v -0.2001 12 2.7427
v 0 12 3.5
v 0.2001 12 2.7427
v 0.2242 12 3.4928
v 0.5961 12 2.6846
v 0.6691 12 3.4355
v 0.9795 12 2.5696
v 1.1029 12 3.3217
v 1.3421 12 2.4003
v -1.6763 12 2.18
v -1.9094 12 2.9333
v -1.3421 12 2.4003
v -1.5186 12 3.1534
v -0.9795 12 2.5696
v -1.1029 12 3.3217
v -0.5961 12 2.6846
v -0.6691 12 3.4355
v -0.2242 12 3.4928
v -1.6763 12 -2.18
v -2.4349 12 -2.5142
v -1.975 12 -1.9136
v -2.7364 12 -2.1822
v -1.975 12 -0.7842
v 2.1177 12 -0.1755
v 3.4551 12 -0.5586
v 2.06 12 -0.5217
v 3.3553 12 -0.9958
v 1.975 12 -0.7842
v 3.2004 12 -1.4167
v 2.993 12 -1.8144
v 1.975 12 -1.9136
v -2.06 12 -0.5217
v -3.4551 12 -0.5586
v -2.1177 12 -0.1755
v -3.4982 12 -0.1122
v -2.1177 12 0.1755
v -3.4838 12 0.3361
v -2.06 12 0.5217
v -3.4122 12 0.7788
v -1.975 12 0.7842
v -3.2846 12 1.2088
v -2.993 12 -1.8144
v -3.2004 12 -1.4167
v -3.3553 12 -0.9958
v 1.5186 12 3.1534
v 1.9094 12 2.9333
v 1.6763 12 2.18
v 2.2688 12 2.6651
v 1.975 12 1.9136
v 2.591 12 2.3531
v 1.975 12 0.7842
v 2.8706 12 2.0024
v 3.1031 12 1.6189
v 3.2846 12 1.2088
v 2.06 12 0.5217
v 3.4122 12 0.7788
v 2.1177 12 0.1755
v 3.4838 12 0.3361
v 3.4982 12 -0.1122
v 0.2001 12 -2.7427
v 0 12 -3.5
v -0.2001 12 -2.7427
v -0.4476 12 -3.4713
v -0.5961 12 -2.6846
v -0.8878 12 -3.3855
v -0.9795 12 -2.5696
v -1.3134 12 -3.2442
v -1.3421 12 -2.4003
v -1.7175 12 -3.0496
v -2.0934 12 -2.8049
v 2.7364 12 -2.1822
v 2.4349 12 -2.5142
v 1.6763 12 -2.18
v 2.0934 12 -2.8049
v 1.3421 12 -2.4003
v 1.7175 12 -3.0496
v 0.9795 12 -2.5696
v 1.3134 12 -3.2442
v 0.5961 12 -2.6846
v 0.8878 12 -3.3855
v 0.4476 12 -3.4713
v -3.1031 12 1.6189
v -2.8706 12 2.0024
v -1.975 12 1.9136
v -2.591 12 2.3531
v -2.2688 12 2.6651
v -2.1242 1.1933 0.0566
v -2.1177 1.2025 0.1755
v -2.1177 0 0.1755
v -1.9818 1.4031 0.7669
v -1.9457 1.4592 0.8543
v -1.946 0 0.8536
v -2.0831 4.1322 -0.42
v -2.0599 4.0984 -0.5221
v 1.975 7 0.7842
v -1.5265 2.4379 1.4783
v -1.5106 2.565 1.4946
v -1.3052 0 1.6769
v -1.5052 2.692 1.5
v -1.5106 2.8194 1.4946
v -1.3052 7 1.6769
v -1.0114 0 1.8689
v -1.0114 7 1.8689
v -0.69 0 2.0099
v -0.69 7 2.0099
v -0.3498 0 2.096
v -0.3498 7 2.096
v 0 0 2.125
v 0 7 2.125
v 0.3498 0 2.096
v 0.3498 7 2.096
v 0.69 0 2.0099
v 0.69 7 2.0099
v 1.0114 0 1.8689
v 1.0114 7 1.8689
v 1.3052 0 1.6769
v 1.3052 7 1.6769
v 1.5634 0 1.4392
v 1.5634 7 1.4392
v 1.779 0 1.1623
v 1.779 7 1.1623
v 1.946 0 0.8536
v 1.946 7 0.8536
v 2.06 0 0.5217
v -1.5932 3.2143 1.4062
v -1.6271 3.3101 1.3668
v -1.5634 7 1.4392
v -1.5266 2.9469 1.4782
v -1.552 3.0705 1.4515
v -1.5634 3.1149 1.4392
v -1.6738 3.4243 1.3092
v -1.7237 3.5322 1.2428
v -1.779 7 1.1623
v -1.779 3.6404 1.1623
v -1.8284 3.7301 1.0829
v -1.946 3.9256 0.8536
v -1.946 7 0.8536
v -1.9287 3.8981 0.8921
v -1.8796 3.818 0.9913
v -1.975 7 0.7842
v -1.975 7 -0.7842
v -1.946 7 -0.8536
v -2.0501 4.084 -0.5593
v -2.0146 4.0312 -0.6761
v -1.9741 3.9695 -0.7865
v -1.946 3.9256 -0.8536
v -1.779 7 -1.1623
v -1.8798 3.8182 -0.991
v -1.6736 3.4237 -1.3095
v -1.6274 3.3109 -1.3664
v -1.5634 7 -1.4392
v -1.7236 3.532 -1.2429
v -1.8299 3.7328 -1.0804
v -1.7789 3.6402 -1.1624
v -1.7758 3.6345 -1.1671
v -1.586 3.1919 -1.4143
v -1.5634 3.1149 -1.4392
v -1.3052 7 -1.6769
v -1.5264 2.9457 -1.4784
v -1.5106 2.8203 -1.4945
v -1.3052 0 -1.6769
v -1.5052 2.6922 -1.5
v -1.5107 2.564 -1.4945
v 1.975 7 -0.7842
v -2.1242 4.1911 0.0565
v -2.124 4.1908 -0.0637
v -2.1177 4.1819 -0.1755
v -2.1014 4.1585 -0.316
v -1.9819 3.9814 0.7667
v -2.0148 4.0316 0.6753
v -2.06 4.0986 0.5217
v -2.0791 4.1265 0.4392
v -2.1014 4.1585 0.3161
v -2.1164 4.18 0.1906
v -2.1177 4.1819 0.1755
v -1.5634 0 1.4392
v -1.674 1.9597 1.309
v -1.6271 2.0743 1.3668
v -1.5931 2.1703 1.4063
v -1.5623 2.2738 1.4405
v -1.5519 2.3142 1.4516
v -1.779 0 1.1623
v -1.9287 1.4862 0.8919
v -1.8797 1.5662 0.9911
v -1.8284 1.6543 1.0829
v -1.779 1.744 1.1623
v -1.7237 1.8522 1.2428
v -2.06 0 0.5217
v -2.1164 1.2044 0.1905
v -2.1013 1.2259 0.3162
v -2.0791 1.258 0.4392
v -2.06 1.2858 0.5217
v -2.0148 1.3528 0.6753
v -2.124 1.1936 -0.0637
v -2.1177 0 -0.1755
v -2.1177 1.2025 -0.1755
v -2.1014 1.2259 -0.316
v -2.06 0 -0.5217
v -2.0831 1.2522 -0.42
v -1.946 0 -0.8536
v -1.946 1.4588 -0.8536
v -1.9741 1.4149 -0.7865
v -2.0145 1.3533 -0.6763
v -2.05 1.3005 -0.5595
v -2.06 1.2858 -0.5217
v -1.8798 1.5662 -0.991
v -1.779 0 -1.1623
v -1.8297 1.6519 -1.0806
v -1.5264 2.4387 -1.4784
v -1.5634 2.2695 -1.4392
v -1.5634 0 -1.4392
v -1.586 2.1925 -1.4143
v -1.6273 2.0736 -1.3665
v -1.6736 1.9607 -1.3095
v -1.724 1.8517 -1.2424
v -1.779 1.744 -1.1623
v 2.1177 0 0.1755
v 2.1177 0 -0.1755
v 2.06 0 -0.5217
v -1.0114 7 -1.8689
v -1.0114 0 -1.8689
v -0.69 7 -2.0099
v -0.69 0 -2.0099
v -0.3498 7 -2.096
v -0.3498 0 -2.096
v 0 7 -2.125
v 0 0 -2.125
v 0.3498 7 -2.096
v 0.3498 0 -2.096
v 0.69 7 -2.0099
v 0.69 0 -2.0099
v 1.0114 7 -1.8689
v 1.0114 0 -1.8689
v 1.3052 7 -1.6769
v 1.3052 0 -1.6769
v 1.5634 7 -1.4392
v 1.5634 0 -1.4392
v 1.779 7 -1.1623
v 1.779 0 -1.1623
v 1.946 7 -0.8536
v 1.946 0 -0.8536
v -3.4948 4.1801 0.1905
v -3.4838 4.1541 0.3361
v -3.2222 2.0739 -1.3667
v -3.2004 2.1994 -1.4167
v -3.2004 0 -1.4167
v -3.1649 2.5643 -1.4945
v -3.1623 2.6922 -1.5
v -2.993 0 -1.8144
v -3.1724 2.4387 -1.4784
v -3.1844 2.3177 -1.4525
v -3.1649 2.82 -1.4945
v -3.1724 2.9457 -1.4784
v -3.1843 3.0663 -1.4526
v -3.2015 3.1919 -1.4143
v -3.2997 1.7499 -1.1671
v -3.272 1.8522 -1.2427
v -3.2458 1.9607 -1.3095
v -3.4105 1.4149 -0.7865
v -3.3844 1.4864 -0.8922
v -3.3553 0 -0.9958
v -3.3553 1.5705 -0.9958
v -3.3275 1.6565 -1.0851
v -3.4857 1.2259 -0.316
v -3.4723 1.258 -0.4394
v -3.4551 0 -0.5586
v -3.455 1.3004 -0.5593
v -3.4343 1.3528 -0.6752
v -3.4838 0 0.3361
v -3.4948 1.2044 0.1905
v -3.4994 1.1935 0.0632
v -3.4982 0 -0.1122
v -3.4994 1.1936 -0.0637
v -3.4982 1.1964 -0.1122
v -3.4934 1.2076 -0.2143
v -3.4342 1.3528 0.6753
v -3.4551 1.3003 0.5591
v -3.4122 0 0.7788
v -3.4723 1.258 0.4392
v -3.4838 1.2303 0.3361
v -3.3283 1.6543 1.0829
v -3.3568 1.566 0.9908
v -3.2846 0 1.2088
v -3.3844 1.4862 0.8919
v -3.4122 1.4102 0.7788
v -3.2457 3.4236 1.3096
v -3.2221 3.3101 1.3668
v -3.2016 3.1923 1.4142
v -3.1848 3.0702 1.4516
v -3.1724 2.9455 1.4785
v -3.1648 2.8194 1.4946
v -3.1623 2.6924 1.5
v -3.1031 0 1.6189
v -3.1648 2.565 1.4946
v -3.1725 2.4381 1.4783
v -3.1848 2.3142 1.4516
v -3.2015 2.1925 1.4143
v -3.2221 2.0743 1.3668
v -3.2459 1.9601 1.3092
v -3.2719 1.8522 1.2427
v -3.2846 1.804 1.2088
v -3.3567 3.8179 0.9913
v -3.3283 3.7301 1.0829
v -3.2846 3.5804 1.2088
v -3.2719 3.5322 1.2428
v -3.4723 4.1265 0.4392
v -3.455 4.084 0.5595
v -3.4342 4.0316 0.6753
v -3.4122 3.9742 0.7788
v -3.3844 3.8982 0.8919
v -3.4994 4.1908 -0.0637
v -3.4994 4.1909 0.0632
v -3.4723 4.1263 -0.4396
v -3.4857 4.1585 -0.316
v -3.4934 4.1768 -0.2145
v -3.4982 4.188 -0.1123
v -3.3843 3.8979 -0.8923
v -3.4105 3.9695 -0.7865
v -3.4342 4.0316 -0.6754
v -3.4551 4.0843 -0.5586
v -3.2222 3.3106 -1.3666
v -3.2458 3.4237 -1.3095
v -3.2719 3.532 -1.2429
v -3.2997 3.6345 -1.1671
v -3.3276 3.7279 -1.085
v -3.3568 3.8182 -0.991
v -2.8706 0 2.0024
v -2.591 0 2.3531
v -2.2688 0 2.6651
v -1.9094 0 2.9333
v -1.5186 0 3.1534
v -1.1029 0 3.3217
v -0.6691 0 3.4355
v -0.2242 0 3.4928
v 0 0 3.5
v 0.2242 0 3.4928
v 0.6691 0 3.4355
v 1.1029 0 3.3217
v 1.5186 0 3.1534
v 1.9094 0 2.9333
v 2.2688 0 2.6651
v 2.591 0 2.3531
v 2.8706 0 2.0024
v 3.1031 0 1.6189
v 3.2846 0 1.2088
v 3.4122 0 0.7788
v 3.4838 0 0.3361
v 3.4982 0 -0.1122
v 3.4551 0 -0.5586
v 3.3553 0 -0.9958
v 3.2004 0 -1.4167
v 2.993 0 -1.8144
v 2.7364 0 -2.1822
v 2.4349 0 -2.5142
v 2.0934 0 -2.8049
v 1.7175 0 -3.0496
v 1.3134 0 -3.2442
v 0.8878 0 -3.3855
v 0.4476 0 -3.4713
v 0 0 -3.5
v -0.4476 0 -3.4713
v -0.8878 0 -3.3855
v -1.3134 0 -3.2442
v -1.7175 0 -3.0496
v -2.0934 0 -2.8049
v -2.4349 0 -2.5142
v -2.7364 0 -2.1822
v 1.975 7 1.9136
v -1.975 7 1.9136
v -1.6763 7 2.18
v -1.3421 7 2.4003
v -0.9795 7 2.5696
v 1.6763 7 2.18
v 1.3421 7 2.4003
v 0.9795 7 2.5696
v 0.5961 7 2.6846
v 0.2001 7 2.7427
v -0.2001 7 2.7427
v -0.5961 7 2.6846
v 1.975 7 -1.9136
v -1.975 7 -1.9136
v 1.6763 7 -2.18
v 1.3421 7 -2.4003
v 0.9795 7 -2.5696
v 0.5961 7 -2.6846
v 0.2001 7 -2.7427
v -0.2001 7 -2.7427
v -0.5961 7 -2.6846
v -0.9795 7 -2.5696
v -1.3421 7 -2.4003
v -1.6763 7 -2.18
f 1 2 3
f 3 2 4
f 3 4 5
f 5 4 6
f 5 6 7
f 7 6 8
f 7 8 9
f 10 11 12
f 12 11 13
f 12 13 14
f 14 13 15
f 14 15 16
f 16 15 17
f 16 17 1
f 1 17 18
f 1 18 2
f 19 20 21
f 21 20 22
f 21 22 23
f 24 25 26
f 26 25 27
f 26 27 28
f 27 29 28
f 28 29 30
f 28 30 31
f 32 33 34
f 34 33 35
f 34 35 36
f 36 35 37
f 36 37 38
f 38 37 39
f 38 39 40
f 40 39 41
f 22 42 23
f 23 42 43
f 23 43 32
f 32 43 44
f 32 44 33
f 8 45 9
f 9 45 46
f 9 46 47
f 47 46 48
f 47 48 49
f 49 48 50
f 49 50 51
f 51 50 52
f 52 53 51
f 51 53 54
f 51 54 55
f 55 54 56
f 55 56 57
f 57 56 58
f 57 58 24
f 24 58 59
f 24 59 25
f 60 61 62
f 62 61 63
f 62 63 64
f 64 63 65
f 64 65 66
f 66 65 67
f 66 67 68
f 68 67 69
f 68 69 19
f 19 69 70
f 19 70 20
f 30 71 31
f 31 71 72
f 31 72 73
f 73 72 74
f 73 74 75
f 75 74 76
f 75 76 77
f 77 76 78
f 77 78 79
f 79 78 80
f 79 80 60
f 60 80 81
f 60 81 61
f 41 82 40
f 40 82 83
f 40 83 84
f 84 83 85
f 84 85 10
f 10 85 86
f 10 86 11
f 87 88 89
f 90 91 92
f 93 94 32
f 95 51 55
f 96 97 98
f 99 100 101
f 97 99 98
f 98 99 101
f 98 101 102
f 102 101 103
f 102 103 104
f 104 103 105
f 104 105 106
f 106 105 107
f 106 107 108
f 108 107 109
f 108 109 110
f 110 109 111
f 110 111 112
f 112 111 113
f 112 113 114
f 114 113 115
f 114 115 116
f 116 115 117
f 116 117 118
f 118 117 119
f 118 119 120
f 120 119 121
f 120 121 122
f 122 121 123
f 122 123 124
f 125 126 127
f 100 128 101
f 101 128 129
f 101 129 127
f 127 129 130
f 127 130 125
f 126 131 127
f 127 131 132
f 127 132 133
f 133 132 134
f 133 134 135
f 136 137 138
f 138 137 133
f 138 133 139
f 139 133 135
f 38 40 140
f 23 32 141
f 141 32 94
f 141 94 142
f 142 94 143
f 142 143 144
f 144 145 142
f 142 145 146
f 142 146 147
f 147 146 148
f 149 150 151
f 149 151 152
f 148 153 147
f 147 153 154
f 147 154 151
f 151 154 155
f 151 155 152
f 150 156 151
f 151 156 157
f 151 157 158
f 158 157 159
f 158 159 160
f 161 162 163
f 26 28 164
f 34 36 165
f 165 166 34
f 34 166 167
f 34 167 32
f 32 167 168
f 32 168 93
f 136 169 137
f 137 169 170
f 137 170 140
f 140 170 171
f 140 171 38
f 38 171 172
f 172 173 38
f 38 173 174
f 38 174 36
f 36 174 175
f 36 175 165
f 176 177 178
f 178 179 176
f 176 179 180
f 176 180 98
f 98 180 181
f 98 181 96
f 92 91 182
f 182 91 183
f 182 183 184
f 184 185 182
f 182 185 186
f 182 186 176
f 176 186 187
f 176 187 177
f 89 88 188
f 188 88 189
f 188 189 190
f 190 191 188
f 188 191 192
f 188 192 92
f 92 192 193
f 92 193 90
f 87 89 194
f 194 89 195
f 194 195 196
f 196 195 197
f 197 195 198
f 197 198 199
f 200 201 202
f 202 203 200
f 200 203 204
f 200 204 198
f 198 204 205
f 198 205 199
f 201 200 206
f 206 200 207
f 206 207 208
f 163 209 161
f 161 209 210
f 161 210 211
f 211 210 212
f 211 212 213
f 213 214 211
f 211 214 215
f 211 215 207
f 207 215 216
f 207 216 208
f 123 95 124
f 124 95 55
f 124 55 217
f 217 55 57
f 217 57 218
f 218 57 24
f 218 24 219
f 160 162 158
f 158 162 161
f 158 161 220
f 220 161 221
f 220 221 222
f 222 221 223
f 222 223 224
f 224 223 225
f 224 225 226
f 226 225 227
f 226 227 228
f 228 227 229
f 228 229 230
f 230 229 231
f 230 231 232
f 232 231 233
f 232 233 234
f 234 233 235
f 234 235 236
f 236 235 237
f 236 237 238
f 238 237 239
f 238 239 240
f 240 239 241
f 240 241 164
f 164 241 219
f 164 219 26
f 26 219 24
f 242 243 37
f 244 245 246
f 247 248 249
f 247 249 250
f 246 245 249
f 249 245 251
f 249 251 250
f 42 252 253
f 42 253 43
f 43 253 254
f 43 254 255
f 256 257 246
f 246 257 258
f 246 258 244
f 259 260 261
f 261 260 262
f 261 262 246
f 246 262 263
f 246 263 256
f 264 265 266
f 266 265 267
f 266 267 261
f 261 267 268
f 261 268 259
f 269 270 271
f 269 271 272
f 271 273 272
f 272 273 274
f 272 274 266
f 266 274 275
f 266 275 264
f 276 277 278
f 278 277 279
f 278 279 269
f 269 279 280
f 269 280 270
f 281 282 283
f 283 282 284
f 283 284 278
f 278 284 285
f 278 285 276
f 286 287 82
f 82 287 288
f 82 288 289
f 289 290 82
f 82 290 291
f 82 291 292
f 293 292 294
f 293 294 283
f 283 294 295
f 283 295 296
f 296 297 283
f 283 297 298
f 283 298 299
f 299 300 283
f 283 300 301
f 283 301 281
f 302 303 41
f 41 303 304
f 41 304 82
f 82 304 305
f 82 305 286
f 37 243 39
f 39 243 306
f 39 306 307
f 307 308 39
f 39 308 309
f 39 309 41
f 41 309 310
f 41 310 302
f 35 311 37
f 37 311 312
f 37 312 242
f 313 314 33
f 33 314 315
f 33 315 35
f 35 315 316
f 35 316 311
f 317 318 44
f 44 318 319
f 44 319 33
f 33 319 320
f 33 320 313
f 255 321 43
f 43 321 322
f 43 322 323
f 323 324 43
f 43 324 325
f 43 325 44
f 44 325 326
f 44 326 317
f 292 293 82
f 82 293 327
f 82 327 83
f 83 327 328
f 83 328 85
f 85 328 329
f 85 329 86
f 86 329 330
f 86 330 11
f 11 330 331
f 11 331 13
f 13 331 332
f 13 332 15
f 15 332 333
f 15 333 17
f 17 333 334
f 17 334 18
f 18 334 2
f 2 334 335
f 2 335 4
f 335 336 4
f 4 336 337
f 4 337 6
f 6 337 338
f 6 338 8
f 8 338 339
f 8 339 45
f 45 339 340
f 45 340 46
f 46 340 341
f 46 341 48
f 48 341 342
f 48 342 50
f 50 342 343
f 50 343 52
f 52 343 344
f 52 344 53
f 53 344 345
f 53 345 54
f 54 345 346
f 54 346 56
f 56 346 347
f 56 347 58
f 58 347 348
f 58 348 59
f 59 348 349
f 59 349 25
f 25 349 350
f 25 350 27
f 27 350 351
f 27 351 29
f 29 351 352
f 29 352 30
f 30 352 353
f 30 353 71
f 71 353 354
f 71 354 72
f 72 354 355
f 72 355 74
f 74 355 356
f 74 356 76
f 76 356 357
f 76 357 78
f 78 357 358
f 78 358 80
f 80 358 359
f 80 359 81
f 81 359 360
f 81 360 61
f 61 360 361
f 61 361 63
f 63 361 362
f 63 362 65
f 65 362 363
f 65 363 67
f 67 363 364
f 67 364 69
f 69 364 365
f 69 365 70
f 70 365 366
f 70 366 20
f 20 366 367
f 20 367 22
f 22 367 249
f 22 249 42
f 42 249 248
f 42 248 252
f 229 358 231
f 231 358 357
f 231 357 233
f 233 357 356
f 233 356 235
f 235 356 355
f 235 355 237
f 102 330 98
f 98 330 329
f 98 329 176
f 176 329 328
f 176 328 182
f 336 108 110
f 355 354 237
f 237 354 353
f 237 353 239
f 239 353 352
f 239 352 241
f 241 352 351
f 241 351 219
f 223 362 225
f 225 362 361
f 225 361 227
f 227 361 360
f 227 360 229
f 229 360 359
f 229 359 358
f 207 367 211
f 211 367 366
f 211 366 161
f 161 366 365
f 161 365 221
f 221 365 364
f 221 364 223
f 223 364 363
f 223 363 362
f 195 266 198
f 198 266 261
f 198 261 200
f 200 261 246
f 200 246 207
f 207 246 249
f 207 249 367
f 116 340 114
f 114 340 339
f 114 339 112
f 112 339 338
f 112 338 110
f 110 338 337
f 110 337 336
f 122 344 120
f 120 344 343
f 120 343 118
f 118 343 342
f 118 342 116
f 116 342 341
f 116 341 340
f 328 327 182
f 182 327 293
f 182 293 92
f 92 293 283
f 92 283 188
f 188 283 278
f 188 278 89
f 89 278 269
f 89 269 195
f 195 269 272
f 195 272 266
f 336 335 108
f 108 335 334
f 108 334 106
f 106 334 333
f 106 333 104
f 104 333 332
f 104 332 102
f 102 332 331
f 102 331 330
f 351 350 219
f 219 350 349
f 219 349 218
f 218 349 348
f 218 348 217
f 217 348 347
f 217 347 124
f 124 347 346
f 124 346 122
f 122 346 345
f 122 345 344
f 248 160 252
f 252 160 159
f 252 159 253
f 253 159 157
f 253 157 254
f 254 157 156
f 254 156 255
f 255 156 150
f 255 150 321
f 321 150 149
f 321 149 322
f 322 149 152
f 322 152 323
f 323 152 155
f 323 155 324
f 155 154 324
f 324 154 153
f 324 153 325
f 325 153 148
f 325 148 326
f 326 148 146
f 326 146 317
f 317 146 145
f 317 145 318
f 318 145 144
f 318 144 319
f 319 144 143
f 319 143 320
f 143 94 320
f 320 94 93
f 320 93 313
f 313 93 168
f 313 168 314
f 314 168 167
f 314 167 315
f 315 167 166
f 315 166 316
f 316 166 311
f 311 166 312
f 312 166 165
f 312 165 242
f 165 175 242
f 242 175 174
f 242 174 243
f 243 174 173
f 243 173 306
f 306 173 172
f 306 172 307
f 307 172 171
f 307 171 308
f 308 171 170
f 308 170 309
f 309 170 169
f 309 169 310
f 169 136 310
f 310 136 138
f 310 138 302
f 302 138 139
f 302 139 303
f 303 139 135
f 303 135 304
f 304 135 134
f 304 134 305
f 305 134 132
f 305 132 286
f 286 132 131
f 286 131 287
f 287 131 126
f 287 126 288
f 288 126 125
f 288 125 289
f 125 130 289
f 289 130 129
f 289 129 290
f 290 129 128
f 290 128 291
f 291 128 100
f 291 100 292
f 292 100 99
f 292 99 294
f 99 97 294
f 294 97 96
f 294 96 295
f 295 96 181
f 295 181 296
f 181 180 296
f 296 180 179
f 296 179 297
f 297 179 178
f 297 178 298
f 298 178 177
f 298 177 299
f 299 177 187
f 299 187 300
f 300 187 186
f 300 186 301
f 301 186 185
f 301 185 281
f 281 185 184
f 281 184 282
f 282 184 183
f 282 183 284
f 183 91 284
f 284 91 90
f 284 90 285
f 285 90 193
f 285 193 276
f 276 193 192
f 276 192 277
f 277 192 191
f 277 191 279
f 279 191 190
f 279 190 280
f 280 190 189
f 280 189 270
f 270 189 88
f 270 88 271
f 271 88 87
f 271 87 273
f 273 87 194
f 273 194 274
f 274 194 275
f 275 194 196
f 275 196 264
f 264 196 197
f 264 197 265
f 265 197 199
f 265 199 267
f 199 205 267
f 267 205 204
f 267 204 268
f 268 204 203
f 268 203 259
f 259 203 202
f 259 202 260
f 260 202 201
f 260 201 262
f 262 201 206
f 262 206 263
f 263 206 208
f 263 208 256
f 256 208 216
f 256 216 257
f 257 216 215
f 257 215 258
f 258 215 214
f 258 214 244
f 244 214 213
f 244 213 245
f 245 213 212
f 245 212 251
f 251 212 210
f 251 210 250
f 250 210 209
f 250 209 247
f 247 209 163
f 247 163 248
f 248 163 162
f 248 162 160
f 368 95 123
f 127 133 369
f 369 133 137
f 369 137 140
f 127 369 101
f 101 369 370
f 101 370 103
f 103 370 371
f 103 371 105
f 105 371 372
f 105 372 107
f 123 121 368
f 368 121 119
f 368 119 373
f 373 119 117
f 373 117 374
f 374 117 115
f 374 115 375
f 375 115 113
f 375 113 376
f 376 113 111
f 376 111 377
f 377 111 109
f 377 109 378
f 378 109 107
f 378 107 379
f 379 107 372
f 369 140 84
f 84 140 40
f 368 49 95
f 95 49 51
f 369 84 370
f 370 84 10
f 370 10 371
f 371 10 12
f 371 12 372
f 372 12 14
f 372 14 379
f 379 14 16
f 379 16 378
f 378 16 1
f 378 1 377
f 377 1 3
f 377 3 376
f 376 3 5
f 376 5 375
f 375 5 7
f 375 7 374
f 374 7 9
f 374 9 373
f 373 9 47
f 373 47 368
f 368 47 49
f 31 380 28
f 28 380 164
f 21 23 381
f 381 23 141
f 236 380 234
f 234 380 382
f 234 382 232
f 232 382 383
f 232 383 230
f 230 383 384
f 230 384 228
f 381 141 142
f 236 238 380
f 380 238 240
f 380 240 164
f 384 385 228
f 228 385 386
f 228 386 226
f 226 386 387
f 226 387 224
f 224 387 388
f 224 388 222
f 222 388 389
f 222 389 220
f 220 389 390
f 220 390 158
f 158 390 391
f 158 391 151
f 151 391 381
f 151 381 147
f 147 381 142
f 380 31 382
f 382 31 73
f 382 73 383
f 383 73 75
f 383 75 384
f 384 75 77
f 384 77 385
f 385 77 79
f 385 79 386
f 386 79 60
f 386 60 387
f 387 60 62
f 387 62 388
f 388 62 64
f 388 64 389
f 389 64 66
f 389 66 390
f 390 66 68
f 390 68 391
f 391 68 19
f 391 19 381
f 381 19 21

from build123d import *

# Parameters (mm, degrees)
SKETCH_1_R          = 3.5
EXTRUDE_1_DEPTH     = 12
SKETCH_2_R          = 2.125
CUT_EXTRUDE_1_DEPTH = 12
SKETCH_3_R          = 1.5
CUT_EXTRUDE_2_DEPTH = 12
CUT_EXTRUDE_3_DEPTH = 5


with BuildPart() as part:
    # 草图1 → 凸台-拉伸1 (new body)
    with BuildSketch(Plane(origin=(0, 0, 0), x_dir=(1, 0, 0), z_dir=(0, 1, 0))):
        with Locations(Location((0, 0, 0), (0, 0, 270))):
            Circle(SKETCH_1_R)
    extrude(amount=EXTRUDE_1_DEPTH)

    # 草图2 → 切除-拉伸1 (cut)
    with BuildSketch(Plane(origin=(0, 12, 0), x_dir=(1, 0, 0), z_dir=(0, 1, 0))):
        with Locations(Location((0, 0, 0), (0, 0, 270))):
            Circle(SKETCH_2_R)
    extrude(amount=-CUT_EXTRUDE_1_DEPTH, mode=Mode.SUBTRACT)

    # 草图3 → 切除-拉伸2 (cut)
    with BuildSketch(Plane(origin=(0, 0, 0), x_dir=(0, 0, -1), z_dir=(1, 0, 0))):
        with Locations((0, 2.692201217)):
            Circle(SKETCH_3_R)
    extrude(amount=-CUT_EXTRUDE_2_DEPTH, mode=Mode.SUBTRACT)

    # 草图4 → 切除-拉伸3 (cut)
    with BuildSketch(Plane(origin=(0, 12, 0), x_dir=(1, 0, 0), z_dir=(0, 1, 0))):
        with BuildLine():
            Line((-1.975, 1.913602623), (-1.975, -1.913602623))
            ThreePointArc((-1.975, -1.913602623), (0, -2.75), (1.975, -1.913602623))
            Line((1.975, -1.913602623), (1.975, 1.913602623))
            ThreePointArc((1.975, 1.913602623), (0, 2.75), (-1.975, 1.913602623))
        make_face()
    extrude(amount=-CUT_EXTRUDE_3_DEPTH, mode=Mode.SUBTRACT)


solid = part.part
